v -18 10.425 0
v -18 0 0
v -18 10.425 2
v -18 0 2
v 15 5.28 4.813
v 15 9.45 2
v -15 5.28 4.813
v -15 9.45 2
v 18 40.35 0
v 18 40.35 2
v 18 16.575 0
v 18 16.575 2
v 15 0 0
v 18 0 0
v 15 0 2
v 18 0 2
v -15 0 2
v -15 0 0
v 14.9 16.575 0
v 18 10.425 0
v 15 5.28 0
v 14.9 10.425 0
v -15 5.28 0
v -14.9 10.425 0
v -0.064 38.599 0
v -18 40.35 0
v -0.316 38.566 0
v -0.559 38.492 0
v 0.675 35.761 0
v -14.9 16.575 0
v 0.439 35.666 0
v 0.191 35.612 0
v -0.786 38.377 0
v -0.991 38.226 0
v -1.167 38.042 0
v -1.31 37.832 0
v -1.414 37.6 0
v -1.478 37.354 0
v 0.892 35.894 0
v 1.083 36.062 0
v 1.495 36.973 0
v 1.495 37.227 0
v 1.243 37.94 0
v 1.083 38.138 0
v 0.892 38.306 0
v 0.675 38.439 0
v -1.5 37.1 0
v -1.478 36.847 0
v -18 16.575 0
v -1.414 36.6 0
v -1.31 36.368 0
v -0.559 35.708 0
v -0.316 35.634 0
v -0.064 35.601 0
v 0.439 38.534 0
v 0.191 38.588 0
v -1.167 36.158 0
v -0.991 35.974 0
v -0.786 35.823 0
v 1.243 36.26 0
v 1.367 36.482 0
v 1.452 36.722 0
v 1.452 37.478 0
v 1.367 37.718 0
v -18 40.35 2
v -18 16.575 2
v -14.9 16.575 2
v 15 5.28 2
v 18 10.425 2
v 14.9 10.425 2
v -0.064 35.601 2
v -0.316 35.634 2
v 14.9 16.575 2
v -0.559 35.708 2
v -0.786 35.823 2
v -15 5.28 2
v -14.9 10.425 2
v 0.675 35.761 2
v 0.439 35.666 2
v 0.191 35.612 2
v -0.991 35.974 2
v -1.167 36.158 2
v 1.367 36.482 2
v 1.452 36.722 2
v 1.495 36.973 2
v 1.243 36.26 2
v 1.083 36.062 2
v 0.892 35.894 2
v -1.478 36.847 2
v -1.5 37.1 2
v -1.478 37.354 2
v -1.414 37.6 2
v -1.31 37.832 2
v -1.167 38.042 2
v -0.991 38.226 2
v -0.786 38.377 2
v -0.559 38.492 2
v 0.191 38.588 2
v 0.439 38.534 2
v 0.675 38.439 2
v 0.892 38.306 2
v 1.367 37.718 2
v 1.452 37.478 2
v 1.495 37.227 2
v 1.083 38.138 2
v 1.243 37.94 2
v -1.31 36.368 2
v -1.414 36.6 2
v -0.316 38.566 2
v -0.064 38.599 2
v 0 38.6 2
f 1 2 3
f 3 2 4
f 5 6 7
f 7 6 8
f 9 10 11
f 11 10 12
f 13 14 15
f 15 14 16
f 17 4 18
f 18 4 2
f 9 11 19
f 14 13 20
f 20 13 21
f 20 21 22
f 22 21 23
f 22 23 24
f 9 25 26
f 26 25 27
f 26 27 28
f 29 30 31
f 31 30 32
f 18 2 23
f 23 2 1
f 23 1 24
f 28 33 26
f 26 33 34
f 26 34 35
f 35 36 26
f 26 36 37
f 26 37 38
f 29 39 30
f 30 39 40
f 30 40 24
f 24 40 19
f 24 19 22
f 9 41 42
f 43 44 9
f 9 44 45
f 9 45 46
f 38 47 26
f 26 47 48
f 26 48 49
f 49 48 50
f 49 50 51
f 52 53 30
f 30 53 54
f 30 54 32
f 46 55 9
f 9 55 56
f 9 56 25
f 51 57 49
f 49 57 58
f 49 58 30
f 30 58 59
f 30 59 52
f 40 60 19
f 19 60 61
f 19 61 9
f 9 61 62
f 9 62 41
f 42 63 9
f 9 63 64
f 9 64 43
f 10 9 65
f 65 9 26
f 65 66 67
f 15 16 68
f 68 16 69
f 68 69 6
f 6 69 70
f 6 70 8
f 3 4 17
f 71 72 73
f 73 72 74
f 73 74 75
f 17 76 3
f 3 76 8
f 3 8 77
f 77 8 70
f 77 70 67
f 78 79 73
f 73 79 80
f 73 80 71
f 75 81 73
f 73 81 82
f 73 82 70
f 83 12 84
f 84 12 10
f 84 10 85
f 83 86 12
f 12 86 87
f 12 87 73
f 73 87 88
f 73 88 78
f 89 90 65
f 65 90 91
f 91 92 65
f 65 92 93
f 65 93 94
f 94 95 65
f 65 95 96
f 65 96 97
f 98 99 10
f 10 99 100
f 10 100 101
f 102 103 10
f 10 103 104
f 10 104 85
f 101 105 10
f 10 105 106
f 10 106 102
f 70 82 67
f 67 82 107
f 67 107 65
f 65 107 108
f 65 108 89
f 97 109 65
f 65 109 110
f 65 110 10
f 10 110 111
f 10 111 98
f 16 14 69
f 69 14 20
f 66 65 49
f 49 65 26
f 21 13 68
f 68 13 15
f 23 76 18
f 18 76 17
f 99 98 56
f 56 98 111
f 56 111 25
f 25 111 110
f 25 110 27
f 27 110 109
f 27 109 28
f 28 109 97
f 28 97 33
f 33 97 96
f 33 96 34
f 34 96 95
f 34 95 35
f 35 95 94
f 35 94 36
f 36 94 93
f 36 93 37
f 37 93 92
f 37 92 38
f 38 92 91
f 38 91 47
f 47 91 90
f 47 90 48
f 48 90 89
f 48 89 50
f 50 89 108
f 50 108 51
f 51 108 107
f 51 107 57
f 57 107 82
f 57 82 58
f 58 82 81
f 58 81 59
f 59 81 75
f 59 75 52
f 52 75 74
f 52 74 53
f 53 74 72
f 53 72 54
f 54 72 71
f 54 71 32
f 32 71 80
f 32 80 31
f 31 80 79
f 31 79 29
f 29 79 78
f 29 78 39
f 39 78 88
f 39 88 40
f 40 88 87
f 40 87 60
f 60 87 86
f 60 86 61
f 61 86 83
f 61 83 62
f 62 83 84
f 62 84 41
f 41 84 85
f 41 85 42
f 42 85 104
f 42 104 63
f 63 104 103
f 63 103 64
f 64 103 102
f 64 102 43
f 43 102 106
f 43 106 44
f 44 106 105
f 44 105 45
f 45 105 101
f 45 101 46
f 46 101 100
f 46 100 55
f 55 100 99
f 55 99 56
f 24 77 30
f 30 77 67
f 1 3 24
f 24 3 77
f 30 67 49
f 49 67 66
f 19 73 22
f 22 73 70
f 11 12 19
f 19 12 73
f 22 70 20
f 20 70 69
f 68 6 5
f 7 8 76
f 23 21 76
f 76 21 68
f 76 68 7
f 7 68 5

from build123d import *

# Parameters (mm, degrees)
BOSS_EXTRUDE1_DEPTH = 18
SKETCH2_R           = 1.5
SKETCH2_W           = 30
SKETCH2_H           = 2.78
CUT_EXTRUDE1_DEPTH  = 7.5
SKETCH3_W           = 3.1
SKETCH3_H           = 6.15
CUT_EXTRUDE2_DEPTH  = 7.5
SKETCH4_W           = 3
SKETCH4_H           = 7.645
CUT_EXTRUDE3_DEPTH  = 5.5
SKETCH5_W           = 6.5
SKETCH5_H           = 2.5
CUT_EXTRUDE4_DEPTH  = 30


with BuildPart() as part:
    # Sketch1 → Boss-Extrude1 (new body, symmetric)
    with BuildSketch(Plane(origin=(0, 0, 0), x_dir=(0, 0, -1), z_dir=(1, 0, 0))):
        Polygon((0, 0), (0, 40.35), (-2, 40.35), (-2, 9.45), (-6.5, 2.78), (-2, 2.78), (-2, 0), align=None)
    extrude(amount=BOSS_EXTRUDE1_DEPTH, both=True)

    # Sketch2 → Cut-Extrude1 (cut, through all)
    with BuildSketch(Plane(origin=(0, 0, 0), x_dir=(-1, 0, 0), z_dir=(0, 0, -1))):
        with Locations((0, 37.1)):
            Circle(SKETCH2_R)
        with Locations((0, 1.39)):
            Rectangle(SKETCH2_W, SKETCH2_H)
    extrude(amount=-CUT_EXTRUDE1_DEPTH, mode=Mode.SUBTRACT)

    # Sketch3 → Cut-Extrude2 (cut, through all)
    with BuildSketch(Plane(origin=(0, 0, 0), x_dir=(-1, 0, 0), z_dir=(0, 0, -1))):
        with Locations((-16.45, 13.5)):
            Rectangle(SKETCH3_W, SKETCH3_H)
        with Locations((16.45, 13.5)):
            Rectangle(SKETCH3_W, SKETCH3_H)
    extrude(amount=-CUT_EXTRUDE2_DEPTH, mode=Mode.SUBTRACT)

    # Sketch4 → Cut-Extrude3 (cut, through all)
    with BuildSketch(Plane.XY.offset(2)):
        with Locations((-16.5, 6.6025)):
            Rectangle(SKETCH4_W, SKETCH4_H)
        with Locations((16.5, 6.6025)):
            Rectangle(SKETCH4_W, SKETCH4_H)
    extrude(amount=CUT_EXTRUDE3_DEPTH, mode=Mode.SUBTRACT)

    # Sketch5 → Cut-Extrude4 (cut)
    with BuildSketch(Plane.ZY.offset(15)):
        with Locations((3.25, 4.03)):
            Rectangle(SKETCH5_W, SKETCH5_H)
    extrude(amount=-CUT_EXTRUDE4_DEPTH, mode=Mode.SUBTRACT)


solid = part.part
